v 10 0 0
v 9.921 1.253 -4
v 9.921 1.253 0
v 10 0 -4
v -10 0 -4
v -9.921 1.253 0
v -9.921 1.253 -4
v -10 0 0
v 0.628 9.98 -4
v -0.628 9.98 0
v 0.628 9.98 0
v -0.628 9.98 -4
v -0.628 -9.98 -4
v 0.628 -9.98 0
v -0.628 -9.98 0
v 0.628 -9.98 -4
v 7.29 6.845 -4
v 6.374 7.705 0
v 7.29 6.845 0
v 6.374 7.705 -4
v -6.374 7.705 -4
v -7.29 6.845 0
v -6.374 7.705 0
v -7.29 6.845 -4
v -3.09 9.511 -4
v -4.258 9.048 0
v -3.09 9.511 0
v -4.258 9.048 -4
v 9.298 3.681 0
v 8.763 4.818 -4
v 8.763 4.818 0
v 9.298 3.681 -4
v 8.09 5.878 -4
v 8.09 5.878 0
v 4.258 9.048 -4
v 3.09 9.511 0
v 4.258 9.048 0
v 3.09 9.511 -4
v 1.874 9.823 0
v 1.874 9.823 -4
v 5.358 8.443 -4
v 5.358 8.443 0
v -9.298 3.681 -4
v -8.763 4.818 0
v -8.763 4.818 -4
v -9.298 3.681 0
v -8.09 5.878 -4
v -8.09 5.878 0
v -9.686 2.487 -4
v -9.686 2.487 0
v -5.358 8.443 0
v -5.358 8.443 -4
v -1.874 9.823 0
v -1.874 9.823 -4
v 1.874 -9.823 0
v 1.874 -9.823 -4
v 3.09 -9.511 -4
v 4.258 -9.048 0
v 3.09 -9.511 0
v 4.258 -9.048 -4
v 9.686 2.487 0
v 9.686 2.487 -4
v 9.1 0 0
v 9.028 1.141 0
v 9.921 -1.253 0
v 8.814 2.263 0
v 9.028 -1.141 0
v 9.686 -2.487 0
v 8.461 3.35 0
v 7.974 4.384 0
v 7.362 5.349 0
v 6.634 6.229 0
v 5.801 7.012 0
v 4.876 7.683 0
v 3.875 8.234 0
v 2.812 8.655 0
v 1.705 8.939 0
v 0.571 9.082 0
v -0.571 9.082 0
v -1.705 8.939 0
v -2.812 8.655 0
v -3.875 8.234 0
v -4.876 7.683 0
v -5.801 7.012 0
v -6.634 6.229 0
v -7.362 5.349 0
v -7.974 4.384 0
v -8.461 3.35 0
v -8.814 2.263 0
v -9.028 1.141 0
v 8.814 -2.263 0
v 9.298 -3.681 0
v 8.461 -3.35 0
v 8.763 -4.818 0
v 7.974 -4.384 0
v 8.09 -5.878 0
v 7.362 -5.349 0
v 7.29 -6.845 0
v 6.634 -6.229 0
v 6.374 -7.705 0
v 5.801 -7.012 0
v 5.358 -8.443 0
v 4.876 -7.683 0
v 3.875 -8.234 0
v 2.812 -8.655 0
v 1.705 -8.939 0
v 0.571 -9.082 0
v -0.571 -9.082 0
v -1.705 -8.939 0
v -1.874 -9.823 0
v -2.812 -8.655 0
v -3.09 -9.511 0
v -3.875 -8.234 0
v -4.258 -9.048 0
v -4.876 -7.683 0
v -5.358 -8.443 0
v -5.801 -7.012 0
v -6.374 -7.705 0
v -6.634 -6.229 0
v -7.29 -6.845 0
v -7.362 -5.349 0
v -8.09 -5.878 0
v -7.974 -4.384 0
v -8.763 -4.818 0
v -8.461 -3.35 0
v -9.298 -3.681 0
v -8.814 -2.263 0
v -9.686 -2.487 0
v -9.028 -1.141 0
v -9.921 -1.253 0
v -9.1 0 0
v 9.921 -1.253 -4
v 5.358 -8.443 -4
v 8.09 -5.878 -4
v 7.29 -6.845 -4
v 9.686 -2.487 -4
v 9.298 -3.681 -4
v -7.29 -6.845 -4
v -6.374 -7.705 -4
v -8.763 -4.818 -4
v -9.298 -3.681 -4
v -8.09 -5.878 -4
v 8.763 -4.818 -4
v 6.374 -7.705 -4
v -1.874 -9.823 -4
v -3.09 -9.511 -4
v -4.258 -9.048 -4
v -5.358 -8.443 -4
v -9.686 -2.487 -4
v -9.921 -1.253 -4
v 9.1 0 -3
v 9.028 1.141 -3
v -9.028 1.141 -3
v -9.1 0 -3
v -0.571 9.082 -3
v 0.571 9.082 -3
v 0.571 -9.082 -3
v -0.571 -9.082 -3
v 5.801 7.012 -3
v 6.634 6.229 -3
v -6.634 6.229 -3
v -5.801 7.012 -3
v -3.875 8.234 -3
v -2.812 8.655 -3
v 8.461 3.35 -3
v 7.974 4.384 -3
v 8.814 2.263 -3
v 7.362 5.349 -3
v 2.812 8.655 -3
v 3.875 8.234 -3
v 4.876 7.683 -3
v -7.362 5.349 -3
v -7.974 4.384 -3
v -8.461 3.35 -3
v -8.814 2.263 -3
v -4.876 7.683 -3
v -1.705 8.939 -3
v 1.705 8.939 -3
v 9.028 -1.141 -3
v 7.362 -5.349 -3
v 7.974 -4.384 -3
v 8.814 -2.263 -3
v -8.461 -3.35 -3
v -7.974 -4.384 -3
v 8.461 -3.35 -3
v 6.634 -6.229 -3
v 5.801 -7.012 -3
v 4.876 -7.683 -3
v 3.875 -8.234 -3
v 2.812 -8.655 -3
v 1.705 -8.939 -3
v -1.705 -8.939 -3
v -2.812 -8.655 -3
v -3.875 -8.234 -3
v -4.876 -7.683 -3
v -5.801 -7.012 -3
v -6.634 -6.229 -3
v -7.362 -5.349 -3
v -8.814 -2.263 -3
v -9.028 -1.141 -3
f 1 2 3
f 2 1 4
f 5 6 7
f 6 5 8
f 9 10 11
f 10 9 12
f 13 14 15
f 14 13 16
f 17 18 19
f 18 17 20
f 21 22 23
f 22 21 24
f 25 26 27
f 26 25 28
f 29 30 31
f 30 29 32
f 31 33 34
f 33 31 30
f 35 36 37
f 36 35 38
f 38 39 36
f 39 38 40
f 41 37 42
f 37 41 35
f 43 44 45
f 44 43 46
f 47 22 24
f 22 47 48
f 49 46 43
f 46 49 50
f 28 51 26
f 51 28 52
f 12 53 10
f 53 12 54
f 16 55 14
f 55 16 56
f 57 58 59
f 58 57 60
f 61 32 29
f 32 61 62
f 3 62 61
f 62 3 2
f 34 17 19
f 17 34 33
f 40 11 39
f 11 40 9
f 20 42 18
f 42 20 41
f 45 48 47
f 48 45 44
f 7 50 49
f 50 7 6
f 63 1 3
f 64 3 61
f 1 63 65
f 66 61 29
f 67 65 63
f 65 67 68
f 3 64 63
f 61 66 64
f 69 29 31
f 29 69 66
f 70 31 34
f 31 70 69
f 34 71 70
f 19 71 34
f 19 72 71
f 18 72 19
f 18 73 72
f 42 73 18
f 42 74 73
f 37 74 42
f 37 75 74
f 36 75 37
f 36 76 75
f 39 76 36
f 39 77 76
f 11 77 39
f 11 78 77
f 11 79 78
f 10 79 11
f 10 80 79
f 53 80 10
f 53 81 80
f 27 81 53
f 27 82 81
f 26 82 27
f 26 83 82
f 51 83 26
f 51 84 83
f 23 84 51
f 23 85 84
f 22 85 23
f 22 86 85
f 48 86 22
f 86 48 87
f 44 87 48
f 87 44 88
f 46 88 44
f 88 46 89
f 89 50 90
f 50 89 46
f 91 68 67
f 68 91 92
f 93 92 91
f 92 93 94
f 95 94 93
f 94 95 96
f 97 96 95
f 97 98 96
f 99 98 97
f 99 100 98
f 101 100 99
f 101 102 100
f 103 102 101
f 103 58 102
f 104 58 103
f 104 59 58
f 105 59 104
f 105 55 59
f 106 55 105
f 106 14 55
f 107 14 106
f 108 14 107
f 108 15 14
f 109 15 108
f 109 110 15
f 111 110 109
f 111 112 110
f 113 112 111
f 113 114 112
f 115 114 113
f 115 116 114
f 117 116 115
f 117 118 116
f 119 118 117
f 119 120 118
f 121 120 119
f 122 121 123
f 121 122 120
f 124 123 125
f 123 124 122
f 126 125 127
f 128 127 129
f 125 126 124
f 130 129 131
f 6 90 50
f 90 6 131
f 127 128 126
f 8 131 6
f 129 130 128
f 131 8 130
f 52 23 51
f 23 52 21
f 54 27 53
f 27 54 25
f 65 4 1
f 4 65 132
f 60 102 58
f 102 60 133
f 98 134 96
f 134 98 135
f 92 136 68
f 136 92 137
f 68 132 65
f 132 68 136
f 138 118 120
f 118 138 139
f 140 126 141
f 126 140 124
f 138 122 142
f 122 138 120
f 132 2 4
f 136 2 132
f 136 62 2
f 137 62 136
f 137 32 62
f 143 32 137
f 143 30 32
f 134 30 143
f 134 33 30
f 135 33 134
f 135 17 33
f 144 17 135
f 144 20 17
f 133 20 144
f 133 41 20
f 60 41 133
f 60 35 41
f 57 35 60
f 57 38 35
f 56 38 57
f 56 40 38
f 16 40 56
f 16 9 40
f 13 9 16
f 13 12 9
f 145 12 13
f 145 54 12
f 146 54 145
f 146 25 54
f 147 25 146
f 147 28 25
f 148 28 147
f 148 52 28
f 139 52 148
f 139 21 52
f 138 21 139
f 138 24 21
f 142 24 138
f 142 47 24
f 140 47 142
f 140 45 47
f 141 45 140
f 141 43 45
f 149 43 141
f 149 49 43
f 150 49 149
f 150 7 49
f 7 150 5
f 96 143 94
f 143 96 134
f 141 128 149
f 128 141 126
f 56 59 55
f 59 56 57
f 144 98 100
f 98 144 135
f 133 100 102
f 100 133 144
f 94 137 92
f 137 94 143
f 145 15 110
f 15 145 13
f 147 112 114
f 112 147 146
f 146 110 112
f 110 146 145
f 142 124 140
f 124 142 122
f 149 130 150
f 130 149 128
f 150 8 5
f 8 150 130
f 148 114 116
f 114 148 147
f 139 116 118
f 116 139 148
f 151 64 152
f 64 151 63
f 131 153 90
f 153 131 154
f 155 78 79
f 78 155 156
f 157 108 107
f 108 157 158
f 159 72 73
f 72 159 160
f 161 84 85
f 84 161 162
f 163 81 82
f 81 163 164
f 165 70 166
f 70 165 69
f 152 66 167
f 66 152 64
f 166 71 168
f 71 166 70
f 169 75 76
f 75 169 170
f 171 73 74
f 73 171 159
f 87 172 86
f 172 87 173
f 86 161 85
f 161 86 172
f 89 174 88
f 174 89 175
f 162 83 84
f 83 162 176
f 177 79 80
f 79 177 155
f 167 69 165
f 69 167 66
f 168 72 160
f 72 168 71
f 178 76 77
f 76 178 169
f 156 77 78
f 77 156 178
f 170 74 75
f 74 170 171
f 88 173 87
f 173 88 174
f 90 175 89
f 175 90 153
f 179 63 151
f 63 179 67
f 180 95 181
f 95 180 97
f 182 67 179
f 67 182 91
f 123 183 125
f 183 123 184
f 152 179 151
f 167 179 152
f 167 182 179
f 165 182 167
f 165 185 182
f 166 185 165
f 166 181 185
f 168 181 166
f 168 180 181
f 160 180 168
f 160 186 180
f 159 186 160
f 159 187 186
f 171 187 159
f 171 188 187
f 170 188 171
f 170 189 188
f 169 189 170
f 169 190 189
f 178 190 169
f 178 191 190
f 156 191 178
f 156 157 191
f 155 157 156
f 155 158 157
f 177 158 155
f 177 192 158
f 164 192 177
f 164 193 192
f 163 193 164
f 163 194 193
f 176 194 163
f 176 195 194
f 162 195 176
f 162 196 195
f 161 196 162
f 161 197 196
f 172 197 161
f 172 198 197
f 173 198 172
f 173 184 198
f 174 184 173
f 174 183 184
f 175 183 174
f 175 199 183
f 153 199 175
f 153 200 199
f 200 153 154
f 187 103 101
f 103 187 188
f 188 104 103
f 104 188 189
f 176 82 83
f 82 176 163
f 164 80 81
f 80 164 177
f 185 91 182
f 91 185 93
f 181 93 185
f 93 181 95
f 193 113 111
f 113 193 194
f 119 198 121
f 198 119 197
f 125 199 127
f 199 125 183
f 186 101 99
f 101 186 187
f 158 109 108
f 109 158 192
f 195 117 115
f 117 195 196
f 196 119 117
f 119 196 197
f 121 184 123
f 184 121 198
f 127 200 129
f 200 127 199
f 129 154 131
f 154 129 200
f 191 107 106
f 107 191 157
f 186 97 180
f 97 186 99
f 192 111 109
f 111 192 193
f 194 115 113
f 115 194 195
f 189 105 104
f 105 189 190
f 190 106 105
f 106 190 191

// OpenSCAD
$fn = 50;


difference() {
	union() {
		translate(v = [0, 0, -4.0000000000]) {
			cylinder(h = 4, r = 10.0000000000);
		}
	}
	union() {
		#translate(v = [0, 0, -3.0000000000]) {
			cylinder(h = 3, r = 9.1000000000);
		}
	}
}
